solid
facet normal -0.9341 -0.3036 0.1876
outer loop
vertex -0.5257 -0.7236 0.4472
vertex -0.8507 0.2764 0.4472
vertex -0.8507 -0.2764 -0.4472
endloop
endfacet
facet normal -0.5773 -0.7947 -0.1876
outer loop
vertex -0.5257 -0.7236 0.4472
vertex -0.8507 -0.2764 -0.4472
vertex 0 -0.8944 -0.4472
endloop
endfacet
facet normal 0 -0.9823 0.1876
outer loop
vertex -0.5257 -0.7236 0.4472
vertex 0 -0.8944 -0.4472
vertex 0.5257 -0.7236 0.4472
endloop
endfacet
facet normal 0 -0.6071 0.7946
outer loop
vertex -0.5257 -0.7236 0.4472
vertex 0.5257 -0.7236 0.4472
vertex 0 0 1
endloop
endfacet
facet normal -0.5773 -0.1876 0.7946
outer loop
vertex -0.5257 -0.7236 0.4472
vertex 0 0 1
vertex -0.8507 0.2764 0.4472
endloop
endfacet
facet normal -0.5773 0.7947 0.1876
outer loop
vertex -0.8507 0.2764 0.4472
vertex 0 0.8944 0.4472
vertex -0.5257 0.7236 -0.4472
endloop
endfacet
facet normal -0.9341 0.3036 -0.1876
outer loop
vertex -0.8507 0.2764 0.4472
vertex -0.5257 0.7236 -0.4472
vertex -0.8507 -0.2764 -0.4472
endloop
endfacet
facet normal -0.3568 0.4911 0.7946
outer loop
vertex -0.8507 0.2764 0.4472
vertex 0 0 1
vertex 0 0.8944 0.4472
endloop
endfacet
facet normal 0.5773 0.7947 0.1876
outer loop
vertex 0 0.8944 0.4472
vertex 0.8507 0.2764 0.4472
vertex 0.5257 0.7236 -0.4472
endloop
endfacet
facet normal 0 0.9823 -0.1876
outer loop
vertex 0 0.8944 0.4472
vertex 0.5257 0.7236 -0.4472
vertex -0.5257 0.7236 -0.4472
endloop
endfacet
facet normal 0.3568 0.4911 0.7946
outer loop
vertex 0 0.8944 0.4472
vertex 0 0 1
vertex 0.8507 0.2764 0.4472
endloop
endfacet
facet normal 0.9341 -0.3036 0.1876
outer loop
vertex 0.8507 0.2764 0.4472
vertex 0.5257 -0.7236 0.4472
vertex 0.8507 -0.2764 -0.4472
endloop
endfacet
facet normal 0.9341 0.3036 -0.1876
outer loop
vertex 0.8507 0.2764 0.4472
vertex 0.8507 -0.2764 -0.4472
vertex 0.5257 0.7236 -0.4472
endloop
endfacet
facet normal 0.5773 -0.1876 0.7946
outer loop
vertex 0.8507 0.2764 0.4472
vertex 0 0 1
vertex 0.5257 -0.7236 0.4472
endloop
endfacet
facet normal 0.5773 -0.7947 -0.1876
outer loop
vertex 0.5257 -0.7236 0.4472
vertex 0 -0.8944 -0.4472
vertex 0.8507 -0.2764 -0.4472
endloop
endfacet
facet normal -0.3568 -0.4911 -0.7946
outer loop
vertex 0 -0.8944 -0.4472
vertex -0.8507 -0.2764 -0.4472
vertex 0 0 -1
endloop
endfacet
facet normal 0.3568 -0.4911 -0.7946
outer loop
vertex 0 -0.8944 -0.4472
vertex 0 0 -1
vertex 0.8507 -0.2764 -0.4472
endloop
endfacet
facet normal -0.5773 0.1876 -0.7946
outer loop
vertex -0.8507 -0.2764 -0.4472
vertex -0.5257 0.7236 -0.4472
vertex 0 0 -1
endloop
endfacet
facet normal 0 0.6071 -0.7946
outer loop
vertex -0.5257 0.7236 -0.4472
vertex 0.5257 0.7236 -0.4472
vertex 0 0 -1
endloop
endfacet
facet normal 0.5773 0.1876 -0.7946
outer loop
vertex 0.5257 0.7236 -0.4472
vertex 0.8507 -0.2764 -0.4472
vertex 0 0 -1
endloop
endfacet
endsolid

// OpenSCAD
polyhedron( points = [[-0.525731112045593, -0.723606797728819, 0.447213595429835], [-0.850650808226968, 0.276393202295901, 0.447213595429835], [-1.17592247323355e-10, 0.894427191034977, 0.447213595429835], [0.850650808091054, 0.276393202295901, 0.447213595429835], [0.525731112070311, -0.723606797728819, 0.447213595429835], [3.96140456914477e-11, -0.894427190923513, -0.447213595461184], [-0.850650808187143, -0.27639320217128, -0.447213595461184], [-0.525731111922381, 0.723606797600445, -0.4472135954424], [0.525731112071857, 0.72360679752536, -0.447213595430792], [0.850650808193929, -0.27639320229279, -0.4472135954424], [3.96140456914477e-11, 6.28976928543407e-11, 0.999999999804184], [-6.70185818147996e-12, 2.9740885565425e-11, -0.999999999715402]], faces = [[0, 1, 6], [0, 6, 5], [0, 5, 4], [0, 4, 10], [0, 10, 1], [1, 2, 7], [1, 7, 6], [1, 10, 2], [2, 3, 8], [2, 8, 7], [2, 10, 3], [3, 4, 9], [3, 9, 8], [3, 10, 4], [4, 5, 9], [5, 6, 11], [5, 11, 9], [6, 7, 11], [7, 8, 11], [8, 9, 11]]);
